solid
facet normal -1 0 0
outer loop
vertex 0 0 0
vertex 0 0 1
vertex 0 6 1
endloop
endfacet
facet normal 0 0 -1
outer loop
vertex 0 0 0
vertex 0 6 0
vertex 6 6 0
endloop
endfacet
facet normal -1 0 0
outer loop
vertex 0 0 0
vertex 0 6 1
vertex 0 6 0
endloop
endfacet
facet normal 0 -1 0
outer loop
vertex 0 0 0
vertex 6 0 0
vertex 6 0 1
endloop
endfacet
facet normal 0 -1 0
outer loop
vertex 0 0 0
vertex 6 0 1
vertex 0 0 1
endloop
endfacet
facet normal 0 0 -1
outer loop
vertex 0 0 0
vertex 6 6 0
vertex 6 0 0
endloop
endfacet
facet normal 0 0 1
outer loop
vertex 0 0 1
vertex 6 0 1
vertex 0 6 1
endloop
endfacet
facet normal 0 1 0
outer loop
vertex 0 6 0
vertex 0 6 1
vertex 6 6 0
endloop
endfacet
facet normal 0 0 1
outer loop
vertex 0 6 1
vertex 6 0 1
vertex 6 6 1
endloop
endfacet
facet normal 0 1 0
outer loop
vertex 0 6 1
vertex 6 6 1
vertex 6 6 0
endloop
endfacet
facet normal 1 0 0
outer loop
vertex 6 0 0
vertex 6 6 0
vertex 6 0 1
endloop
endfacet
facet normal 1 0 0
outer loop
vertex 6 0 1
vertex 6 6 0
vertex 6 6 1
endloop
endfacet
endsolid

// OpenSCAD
/* Warning, this is a very basic generator with a lot of approximation 
input data : [QFN-S, MCX, 6x6mm, 28, , C, C04-00124C]
generated by com.zoubworld.electronics.cad.model3d.Basic
Date : Sun Feb 15 10:50:48 CET 2026
*/

//body
color("black")
translate([0,0,0])
cube([6.0,6.0,1.0], center=false);
